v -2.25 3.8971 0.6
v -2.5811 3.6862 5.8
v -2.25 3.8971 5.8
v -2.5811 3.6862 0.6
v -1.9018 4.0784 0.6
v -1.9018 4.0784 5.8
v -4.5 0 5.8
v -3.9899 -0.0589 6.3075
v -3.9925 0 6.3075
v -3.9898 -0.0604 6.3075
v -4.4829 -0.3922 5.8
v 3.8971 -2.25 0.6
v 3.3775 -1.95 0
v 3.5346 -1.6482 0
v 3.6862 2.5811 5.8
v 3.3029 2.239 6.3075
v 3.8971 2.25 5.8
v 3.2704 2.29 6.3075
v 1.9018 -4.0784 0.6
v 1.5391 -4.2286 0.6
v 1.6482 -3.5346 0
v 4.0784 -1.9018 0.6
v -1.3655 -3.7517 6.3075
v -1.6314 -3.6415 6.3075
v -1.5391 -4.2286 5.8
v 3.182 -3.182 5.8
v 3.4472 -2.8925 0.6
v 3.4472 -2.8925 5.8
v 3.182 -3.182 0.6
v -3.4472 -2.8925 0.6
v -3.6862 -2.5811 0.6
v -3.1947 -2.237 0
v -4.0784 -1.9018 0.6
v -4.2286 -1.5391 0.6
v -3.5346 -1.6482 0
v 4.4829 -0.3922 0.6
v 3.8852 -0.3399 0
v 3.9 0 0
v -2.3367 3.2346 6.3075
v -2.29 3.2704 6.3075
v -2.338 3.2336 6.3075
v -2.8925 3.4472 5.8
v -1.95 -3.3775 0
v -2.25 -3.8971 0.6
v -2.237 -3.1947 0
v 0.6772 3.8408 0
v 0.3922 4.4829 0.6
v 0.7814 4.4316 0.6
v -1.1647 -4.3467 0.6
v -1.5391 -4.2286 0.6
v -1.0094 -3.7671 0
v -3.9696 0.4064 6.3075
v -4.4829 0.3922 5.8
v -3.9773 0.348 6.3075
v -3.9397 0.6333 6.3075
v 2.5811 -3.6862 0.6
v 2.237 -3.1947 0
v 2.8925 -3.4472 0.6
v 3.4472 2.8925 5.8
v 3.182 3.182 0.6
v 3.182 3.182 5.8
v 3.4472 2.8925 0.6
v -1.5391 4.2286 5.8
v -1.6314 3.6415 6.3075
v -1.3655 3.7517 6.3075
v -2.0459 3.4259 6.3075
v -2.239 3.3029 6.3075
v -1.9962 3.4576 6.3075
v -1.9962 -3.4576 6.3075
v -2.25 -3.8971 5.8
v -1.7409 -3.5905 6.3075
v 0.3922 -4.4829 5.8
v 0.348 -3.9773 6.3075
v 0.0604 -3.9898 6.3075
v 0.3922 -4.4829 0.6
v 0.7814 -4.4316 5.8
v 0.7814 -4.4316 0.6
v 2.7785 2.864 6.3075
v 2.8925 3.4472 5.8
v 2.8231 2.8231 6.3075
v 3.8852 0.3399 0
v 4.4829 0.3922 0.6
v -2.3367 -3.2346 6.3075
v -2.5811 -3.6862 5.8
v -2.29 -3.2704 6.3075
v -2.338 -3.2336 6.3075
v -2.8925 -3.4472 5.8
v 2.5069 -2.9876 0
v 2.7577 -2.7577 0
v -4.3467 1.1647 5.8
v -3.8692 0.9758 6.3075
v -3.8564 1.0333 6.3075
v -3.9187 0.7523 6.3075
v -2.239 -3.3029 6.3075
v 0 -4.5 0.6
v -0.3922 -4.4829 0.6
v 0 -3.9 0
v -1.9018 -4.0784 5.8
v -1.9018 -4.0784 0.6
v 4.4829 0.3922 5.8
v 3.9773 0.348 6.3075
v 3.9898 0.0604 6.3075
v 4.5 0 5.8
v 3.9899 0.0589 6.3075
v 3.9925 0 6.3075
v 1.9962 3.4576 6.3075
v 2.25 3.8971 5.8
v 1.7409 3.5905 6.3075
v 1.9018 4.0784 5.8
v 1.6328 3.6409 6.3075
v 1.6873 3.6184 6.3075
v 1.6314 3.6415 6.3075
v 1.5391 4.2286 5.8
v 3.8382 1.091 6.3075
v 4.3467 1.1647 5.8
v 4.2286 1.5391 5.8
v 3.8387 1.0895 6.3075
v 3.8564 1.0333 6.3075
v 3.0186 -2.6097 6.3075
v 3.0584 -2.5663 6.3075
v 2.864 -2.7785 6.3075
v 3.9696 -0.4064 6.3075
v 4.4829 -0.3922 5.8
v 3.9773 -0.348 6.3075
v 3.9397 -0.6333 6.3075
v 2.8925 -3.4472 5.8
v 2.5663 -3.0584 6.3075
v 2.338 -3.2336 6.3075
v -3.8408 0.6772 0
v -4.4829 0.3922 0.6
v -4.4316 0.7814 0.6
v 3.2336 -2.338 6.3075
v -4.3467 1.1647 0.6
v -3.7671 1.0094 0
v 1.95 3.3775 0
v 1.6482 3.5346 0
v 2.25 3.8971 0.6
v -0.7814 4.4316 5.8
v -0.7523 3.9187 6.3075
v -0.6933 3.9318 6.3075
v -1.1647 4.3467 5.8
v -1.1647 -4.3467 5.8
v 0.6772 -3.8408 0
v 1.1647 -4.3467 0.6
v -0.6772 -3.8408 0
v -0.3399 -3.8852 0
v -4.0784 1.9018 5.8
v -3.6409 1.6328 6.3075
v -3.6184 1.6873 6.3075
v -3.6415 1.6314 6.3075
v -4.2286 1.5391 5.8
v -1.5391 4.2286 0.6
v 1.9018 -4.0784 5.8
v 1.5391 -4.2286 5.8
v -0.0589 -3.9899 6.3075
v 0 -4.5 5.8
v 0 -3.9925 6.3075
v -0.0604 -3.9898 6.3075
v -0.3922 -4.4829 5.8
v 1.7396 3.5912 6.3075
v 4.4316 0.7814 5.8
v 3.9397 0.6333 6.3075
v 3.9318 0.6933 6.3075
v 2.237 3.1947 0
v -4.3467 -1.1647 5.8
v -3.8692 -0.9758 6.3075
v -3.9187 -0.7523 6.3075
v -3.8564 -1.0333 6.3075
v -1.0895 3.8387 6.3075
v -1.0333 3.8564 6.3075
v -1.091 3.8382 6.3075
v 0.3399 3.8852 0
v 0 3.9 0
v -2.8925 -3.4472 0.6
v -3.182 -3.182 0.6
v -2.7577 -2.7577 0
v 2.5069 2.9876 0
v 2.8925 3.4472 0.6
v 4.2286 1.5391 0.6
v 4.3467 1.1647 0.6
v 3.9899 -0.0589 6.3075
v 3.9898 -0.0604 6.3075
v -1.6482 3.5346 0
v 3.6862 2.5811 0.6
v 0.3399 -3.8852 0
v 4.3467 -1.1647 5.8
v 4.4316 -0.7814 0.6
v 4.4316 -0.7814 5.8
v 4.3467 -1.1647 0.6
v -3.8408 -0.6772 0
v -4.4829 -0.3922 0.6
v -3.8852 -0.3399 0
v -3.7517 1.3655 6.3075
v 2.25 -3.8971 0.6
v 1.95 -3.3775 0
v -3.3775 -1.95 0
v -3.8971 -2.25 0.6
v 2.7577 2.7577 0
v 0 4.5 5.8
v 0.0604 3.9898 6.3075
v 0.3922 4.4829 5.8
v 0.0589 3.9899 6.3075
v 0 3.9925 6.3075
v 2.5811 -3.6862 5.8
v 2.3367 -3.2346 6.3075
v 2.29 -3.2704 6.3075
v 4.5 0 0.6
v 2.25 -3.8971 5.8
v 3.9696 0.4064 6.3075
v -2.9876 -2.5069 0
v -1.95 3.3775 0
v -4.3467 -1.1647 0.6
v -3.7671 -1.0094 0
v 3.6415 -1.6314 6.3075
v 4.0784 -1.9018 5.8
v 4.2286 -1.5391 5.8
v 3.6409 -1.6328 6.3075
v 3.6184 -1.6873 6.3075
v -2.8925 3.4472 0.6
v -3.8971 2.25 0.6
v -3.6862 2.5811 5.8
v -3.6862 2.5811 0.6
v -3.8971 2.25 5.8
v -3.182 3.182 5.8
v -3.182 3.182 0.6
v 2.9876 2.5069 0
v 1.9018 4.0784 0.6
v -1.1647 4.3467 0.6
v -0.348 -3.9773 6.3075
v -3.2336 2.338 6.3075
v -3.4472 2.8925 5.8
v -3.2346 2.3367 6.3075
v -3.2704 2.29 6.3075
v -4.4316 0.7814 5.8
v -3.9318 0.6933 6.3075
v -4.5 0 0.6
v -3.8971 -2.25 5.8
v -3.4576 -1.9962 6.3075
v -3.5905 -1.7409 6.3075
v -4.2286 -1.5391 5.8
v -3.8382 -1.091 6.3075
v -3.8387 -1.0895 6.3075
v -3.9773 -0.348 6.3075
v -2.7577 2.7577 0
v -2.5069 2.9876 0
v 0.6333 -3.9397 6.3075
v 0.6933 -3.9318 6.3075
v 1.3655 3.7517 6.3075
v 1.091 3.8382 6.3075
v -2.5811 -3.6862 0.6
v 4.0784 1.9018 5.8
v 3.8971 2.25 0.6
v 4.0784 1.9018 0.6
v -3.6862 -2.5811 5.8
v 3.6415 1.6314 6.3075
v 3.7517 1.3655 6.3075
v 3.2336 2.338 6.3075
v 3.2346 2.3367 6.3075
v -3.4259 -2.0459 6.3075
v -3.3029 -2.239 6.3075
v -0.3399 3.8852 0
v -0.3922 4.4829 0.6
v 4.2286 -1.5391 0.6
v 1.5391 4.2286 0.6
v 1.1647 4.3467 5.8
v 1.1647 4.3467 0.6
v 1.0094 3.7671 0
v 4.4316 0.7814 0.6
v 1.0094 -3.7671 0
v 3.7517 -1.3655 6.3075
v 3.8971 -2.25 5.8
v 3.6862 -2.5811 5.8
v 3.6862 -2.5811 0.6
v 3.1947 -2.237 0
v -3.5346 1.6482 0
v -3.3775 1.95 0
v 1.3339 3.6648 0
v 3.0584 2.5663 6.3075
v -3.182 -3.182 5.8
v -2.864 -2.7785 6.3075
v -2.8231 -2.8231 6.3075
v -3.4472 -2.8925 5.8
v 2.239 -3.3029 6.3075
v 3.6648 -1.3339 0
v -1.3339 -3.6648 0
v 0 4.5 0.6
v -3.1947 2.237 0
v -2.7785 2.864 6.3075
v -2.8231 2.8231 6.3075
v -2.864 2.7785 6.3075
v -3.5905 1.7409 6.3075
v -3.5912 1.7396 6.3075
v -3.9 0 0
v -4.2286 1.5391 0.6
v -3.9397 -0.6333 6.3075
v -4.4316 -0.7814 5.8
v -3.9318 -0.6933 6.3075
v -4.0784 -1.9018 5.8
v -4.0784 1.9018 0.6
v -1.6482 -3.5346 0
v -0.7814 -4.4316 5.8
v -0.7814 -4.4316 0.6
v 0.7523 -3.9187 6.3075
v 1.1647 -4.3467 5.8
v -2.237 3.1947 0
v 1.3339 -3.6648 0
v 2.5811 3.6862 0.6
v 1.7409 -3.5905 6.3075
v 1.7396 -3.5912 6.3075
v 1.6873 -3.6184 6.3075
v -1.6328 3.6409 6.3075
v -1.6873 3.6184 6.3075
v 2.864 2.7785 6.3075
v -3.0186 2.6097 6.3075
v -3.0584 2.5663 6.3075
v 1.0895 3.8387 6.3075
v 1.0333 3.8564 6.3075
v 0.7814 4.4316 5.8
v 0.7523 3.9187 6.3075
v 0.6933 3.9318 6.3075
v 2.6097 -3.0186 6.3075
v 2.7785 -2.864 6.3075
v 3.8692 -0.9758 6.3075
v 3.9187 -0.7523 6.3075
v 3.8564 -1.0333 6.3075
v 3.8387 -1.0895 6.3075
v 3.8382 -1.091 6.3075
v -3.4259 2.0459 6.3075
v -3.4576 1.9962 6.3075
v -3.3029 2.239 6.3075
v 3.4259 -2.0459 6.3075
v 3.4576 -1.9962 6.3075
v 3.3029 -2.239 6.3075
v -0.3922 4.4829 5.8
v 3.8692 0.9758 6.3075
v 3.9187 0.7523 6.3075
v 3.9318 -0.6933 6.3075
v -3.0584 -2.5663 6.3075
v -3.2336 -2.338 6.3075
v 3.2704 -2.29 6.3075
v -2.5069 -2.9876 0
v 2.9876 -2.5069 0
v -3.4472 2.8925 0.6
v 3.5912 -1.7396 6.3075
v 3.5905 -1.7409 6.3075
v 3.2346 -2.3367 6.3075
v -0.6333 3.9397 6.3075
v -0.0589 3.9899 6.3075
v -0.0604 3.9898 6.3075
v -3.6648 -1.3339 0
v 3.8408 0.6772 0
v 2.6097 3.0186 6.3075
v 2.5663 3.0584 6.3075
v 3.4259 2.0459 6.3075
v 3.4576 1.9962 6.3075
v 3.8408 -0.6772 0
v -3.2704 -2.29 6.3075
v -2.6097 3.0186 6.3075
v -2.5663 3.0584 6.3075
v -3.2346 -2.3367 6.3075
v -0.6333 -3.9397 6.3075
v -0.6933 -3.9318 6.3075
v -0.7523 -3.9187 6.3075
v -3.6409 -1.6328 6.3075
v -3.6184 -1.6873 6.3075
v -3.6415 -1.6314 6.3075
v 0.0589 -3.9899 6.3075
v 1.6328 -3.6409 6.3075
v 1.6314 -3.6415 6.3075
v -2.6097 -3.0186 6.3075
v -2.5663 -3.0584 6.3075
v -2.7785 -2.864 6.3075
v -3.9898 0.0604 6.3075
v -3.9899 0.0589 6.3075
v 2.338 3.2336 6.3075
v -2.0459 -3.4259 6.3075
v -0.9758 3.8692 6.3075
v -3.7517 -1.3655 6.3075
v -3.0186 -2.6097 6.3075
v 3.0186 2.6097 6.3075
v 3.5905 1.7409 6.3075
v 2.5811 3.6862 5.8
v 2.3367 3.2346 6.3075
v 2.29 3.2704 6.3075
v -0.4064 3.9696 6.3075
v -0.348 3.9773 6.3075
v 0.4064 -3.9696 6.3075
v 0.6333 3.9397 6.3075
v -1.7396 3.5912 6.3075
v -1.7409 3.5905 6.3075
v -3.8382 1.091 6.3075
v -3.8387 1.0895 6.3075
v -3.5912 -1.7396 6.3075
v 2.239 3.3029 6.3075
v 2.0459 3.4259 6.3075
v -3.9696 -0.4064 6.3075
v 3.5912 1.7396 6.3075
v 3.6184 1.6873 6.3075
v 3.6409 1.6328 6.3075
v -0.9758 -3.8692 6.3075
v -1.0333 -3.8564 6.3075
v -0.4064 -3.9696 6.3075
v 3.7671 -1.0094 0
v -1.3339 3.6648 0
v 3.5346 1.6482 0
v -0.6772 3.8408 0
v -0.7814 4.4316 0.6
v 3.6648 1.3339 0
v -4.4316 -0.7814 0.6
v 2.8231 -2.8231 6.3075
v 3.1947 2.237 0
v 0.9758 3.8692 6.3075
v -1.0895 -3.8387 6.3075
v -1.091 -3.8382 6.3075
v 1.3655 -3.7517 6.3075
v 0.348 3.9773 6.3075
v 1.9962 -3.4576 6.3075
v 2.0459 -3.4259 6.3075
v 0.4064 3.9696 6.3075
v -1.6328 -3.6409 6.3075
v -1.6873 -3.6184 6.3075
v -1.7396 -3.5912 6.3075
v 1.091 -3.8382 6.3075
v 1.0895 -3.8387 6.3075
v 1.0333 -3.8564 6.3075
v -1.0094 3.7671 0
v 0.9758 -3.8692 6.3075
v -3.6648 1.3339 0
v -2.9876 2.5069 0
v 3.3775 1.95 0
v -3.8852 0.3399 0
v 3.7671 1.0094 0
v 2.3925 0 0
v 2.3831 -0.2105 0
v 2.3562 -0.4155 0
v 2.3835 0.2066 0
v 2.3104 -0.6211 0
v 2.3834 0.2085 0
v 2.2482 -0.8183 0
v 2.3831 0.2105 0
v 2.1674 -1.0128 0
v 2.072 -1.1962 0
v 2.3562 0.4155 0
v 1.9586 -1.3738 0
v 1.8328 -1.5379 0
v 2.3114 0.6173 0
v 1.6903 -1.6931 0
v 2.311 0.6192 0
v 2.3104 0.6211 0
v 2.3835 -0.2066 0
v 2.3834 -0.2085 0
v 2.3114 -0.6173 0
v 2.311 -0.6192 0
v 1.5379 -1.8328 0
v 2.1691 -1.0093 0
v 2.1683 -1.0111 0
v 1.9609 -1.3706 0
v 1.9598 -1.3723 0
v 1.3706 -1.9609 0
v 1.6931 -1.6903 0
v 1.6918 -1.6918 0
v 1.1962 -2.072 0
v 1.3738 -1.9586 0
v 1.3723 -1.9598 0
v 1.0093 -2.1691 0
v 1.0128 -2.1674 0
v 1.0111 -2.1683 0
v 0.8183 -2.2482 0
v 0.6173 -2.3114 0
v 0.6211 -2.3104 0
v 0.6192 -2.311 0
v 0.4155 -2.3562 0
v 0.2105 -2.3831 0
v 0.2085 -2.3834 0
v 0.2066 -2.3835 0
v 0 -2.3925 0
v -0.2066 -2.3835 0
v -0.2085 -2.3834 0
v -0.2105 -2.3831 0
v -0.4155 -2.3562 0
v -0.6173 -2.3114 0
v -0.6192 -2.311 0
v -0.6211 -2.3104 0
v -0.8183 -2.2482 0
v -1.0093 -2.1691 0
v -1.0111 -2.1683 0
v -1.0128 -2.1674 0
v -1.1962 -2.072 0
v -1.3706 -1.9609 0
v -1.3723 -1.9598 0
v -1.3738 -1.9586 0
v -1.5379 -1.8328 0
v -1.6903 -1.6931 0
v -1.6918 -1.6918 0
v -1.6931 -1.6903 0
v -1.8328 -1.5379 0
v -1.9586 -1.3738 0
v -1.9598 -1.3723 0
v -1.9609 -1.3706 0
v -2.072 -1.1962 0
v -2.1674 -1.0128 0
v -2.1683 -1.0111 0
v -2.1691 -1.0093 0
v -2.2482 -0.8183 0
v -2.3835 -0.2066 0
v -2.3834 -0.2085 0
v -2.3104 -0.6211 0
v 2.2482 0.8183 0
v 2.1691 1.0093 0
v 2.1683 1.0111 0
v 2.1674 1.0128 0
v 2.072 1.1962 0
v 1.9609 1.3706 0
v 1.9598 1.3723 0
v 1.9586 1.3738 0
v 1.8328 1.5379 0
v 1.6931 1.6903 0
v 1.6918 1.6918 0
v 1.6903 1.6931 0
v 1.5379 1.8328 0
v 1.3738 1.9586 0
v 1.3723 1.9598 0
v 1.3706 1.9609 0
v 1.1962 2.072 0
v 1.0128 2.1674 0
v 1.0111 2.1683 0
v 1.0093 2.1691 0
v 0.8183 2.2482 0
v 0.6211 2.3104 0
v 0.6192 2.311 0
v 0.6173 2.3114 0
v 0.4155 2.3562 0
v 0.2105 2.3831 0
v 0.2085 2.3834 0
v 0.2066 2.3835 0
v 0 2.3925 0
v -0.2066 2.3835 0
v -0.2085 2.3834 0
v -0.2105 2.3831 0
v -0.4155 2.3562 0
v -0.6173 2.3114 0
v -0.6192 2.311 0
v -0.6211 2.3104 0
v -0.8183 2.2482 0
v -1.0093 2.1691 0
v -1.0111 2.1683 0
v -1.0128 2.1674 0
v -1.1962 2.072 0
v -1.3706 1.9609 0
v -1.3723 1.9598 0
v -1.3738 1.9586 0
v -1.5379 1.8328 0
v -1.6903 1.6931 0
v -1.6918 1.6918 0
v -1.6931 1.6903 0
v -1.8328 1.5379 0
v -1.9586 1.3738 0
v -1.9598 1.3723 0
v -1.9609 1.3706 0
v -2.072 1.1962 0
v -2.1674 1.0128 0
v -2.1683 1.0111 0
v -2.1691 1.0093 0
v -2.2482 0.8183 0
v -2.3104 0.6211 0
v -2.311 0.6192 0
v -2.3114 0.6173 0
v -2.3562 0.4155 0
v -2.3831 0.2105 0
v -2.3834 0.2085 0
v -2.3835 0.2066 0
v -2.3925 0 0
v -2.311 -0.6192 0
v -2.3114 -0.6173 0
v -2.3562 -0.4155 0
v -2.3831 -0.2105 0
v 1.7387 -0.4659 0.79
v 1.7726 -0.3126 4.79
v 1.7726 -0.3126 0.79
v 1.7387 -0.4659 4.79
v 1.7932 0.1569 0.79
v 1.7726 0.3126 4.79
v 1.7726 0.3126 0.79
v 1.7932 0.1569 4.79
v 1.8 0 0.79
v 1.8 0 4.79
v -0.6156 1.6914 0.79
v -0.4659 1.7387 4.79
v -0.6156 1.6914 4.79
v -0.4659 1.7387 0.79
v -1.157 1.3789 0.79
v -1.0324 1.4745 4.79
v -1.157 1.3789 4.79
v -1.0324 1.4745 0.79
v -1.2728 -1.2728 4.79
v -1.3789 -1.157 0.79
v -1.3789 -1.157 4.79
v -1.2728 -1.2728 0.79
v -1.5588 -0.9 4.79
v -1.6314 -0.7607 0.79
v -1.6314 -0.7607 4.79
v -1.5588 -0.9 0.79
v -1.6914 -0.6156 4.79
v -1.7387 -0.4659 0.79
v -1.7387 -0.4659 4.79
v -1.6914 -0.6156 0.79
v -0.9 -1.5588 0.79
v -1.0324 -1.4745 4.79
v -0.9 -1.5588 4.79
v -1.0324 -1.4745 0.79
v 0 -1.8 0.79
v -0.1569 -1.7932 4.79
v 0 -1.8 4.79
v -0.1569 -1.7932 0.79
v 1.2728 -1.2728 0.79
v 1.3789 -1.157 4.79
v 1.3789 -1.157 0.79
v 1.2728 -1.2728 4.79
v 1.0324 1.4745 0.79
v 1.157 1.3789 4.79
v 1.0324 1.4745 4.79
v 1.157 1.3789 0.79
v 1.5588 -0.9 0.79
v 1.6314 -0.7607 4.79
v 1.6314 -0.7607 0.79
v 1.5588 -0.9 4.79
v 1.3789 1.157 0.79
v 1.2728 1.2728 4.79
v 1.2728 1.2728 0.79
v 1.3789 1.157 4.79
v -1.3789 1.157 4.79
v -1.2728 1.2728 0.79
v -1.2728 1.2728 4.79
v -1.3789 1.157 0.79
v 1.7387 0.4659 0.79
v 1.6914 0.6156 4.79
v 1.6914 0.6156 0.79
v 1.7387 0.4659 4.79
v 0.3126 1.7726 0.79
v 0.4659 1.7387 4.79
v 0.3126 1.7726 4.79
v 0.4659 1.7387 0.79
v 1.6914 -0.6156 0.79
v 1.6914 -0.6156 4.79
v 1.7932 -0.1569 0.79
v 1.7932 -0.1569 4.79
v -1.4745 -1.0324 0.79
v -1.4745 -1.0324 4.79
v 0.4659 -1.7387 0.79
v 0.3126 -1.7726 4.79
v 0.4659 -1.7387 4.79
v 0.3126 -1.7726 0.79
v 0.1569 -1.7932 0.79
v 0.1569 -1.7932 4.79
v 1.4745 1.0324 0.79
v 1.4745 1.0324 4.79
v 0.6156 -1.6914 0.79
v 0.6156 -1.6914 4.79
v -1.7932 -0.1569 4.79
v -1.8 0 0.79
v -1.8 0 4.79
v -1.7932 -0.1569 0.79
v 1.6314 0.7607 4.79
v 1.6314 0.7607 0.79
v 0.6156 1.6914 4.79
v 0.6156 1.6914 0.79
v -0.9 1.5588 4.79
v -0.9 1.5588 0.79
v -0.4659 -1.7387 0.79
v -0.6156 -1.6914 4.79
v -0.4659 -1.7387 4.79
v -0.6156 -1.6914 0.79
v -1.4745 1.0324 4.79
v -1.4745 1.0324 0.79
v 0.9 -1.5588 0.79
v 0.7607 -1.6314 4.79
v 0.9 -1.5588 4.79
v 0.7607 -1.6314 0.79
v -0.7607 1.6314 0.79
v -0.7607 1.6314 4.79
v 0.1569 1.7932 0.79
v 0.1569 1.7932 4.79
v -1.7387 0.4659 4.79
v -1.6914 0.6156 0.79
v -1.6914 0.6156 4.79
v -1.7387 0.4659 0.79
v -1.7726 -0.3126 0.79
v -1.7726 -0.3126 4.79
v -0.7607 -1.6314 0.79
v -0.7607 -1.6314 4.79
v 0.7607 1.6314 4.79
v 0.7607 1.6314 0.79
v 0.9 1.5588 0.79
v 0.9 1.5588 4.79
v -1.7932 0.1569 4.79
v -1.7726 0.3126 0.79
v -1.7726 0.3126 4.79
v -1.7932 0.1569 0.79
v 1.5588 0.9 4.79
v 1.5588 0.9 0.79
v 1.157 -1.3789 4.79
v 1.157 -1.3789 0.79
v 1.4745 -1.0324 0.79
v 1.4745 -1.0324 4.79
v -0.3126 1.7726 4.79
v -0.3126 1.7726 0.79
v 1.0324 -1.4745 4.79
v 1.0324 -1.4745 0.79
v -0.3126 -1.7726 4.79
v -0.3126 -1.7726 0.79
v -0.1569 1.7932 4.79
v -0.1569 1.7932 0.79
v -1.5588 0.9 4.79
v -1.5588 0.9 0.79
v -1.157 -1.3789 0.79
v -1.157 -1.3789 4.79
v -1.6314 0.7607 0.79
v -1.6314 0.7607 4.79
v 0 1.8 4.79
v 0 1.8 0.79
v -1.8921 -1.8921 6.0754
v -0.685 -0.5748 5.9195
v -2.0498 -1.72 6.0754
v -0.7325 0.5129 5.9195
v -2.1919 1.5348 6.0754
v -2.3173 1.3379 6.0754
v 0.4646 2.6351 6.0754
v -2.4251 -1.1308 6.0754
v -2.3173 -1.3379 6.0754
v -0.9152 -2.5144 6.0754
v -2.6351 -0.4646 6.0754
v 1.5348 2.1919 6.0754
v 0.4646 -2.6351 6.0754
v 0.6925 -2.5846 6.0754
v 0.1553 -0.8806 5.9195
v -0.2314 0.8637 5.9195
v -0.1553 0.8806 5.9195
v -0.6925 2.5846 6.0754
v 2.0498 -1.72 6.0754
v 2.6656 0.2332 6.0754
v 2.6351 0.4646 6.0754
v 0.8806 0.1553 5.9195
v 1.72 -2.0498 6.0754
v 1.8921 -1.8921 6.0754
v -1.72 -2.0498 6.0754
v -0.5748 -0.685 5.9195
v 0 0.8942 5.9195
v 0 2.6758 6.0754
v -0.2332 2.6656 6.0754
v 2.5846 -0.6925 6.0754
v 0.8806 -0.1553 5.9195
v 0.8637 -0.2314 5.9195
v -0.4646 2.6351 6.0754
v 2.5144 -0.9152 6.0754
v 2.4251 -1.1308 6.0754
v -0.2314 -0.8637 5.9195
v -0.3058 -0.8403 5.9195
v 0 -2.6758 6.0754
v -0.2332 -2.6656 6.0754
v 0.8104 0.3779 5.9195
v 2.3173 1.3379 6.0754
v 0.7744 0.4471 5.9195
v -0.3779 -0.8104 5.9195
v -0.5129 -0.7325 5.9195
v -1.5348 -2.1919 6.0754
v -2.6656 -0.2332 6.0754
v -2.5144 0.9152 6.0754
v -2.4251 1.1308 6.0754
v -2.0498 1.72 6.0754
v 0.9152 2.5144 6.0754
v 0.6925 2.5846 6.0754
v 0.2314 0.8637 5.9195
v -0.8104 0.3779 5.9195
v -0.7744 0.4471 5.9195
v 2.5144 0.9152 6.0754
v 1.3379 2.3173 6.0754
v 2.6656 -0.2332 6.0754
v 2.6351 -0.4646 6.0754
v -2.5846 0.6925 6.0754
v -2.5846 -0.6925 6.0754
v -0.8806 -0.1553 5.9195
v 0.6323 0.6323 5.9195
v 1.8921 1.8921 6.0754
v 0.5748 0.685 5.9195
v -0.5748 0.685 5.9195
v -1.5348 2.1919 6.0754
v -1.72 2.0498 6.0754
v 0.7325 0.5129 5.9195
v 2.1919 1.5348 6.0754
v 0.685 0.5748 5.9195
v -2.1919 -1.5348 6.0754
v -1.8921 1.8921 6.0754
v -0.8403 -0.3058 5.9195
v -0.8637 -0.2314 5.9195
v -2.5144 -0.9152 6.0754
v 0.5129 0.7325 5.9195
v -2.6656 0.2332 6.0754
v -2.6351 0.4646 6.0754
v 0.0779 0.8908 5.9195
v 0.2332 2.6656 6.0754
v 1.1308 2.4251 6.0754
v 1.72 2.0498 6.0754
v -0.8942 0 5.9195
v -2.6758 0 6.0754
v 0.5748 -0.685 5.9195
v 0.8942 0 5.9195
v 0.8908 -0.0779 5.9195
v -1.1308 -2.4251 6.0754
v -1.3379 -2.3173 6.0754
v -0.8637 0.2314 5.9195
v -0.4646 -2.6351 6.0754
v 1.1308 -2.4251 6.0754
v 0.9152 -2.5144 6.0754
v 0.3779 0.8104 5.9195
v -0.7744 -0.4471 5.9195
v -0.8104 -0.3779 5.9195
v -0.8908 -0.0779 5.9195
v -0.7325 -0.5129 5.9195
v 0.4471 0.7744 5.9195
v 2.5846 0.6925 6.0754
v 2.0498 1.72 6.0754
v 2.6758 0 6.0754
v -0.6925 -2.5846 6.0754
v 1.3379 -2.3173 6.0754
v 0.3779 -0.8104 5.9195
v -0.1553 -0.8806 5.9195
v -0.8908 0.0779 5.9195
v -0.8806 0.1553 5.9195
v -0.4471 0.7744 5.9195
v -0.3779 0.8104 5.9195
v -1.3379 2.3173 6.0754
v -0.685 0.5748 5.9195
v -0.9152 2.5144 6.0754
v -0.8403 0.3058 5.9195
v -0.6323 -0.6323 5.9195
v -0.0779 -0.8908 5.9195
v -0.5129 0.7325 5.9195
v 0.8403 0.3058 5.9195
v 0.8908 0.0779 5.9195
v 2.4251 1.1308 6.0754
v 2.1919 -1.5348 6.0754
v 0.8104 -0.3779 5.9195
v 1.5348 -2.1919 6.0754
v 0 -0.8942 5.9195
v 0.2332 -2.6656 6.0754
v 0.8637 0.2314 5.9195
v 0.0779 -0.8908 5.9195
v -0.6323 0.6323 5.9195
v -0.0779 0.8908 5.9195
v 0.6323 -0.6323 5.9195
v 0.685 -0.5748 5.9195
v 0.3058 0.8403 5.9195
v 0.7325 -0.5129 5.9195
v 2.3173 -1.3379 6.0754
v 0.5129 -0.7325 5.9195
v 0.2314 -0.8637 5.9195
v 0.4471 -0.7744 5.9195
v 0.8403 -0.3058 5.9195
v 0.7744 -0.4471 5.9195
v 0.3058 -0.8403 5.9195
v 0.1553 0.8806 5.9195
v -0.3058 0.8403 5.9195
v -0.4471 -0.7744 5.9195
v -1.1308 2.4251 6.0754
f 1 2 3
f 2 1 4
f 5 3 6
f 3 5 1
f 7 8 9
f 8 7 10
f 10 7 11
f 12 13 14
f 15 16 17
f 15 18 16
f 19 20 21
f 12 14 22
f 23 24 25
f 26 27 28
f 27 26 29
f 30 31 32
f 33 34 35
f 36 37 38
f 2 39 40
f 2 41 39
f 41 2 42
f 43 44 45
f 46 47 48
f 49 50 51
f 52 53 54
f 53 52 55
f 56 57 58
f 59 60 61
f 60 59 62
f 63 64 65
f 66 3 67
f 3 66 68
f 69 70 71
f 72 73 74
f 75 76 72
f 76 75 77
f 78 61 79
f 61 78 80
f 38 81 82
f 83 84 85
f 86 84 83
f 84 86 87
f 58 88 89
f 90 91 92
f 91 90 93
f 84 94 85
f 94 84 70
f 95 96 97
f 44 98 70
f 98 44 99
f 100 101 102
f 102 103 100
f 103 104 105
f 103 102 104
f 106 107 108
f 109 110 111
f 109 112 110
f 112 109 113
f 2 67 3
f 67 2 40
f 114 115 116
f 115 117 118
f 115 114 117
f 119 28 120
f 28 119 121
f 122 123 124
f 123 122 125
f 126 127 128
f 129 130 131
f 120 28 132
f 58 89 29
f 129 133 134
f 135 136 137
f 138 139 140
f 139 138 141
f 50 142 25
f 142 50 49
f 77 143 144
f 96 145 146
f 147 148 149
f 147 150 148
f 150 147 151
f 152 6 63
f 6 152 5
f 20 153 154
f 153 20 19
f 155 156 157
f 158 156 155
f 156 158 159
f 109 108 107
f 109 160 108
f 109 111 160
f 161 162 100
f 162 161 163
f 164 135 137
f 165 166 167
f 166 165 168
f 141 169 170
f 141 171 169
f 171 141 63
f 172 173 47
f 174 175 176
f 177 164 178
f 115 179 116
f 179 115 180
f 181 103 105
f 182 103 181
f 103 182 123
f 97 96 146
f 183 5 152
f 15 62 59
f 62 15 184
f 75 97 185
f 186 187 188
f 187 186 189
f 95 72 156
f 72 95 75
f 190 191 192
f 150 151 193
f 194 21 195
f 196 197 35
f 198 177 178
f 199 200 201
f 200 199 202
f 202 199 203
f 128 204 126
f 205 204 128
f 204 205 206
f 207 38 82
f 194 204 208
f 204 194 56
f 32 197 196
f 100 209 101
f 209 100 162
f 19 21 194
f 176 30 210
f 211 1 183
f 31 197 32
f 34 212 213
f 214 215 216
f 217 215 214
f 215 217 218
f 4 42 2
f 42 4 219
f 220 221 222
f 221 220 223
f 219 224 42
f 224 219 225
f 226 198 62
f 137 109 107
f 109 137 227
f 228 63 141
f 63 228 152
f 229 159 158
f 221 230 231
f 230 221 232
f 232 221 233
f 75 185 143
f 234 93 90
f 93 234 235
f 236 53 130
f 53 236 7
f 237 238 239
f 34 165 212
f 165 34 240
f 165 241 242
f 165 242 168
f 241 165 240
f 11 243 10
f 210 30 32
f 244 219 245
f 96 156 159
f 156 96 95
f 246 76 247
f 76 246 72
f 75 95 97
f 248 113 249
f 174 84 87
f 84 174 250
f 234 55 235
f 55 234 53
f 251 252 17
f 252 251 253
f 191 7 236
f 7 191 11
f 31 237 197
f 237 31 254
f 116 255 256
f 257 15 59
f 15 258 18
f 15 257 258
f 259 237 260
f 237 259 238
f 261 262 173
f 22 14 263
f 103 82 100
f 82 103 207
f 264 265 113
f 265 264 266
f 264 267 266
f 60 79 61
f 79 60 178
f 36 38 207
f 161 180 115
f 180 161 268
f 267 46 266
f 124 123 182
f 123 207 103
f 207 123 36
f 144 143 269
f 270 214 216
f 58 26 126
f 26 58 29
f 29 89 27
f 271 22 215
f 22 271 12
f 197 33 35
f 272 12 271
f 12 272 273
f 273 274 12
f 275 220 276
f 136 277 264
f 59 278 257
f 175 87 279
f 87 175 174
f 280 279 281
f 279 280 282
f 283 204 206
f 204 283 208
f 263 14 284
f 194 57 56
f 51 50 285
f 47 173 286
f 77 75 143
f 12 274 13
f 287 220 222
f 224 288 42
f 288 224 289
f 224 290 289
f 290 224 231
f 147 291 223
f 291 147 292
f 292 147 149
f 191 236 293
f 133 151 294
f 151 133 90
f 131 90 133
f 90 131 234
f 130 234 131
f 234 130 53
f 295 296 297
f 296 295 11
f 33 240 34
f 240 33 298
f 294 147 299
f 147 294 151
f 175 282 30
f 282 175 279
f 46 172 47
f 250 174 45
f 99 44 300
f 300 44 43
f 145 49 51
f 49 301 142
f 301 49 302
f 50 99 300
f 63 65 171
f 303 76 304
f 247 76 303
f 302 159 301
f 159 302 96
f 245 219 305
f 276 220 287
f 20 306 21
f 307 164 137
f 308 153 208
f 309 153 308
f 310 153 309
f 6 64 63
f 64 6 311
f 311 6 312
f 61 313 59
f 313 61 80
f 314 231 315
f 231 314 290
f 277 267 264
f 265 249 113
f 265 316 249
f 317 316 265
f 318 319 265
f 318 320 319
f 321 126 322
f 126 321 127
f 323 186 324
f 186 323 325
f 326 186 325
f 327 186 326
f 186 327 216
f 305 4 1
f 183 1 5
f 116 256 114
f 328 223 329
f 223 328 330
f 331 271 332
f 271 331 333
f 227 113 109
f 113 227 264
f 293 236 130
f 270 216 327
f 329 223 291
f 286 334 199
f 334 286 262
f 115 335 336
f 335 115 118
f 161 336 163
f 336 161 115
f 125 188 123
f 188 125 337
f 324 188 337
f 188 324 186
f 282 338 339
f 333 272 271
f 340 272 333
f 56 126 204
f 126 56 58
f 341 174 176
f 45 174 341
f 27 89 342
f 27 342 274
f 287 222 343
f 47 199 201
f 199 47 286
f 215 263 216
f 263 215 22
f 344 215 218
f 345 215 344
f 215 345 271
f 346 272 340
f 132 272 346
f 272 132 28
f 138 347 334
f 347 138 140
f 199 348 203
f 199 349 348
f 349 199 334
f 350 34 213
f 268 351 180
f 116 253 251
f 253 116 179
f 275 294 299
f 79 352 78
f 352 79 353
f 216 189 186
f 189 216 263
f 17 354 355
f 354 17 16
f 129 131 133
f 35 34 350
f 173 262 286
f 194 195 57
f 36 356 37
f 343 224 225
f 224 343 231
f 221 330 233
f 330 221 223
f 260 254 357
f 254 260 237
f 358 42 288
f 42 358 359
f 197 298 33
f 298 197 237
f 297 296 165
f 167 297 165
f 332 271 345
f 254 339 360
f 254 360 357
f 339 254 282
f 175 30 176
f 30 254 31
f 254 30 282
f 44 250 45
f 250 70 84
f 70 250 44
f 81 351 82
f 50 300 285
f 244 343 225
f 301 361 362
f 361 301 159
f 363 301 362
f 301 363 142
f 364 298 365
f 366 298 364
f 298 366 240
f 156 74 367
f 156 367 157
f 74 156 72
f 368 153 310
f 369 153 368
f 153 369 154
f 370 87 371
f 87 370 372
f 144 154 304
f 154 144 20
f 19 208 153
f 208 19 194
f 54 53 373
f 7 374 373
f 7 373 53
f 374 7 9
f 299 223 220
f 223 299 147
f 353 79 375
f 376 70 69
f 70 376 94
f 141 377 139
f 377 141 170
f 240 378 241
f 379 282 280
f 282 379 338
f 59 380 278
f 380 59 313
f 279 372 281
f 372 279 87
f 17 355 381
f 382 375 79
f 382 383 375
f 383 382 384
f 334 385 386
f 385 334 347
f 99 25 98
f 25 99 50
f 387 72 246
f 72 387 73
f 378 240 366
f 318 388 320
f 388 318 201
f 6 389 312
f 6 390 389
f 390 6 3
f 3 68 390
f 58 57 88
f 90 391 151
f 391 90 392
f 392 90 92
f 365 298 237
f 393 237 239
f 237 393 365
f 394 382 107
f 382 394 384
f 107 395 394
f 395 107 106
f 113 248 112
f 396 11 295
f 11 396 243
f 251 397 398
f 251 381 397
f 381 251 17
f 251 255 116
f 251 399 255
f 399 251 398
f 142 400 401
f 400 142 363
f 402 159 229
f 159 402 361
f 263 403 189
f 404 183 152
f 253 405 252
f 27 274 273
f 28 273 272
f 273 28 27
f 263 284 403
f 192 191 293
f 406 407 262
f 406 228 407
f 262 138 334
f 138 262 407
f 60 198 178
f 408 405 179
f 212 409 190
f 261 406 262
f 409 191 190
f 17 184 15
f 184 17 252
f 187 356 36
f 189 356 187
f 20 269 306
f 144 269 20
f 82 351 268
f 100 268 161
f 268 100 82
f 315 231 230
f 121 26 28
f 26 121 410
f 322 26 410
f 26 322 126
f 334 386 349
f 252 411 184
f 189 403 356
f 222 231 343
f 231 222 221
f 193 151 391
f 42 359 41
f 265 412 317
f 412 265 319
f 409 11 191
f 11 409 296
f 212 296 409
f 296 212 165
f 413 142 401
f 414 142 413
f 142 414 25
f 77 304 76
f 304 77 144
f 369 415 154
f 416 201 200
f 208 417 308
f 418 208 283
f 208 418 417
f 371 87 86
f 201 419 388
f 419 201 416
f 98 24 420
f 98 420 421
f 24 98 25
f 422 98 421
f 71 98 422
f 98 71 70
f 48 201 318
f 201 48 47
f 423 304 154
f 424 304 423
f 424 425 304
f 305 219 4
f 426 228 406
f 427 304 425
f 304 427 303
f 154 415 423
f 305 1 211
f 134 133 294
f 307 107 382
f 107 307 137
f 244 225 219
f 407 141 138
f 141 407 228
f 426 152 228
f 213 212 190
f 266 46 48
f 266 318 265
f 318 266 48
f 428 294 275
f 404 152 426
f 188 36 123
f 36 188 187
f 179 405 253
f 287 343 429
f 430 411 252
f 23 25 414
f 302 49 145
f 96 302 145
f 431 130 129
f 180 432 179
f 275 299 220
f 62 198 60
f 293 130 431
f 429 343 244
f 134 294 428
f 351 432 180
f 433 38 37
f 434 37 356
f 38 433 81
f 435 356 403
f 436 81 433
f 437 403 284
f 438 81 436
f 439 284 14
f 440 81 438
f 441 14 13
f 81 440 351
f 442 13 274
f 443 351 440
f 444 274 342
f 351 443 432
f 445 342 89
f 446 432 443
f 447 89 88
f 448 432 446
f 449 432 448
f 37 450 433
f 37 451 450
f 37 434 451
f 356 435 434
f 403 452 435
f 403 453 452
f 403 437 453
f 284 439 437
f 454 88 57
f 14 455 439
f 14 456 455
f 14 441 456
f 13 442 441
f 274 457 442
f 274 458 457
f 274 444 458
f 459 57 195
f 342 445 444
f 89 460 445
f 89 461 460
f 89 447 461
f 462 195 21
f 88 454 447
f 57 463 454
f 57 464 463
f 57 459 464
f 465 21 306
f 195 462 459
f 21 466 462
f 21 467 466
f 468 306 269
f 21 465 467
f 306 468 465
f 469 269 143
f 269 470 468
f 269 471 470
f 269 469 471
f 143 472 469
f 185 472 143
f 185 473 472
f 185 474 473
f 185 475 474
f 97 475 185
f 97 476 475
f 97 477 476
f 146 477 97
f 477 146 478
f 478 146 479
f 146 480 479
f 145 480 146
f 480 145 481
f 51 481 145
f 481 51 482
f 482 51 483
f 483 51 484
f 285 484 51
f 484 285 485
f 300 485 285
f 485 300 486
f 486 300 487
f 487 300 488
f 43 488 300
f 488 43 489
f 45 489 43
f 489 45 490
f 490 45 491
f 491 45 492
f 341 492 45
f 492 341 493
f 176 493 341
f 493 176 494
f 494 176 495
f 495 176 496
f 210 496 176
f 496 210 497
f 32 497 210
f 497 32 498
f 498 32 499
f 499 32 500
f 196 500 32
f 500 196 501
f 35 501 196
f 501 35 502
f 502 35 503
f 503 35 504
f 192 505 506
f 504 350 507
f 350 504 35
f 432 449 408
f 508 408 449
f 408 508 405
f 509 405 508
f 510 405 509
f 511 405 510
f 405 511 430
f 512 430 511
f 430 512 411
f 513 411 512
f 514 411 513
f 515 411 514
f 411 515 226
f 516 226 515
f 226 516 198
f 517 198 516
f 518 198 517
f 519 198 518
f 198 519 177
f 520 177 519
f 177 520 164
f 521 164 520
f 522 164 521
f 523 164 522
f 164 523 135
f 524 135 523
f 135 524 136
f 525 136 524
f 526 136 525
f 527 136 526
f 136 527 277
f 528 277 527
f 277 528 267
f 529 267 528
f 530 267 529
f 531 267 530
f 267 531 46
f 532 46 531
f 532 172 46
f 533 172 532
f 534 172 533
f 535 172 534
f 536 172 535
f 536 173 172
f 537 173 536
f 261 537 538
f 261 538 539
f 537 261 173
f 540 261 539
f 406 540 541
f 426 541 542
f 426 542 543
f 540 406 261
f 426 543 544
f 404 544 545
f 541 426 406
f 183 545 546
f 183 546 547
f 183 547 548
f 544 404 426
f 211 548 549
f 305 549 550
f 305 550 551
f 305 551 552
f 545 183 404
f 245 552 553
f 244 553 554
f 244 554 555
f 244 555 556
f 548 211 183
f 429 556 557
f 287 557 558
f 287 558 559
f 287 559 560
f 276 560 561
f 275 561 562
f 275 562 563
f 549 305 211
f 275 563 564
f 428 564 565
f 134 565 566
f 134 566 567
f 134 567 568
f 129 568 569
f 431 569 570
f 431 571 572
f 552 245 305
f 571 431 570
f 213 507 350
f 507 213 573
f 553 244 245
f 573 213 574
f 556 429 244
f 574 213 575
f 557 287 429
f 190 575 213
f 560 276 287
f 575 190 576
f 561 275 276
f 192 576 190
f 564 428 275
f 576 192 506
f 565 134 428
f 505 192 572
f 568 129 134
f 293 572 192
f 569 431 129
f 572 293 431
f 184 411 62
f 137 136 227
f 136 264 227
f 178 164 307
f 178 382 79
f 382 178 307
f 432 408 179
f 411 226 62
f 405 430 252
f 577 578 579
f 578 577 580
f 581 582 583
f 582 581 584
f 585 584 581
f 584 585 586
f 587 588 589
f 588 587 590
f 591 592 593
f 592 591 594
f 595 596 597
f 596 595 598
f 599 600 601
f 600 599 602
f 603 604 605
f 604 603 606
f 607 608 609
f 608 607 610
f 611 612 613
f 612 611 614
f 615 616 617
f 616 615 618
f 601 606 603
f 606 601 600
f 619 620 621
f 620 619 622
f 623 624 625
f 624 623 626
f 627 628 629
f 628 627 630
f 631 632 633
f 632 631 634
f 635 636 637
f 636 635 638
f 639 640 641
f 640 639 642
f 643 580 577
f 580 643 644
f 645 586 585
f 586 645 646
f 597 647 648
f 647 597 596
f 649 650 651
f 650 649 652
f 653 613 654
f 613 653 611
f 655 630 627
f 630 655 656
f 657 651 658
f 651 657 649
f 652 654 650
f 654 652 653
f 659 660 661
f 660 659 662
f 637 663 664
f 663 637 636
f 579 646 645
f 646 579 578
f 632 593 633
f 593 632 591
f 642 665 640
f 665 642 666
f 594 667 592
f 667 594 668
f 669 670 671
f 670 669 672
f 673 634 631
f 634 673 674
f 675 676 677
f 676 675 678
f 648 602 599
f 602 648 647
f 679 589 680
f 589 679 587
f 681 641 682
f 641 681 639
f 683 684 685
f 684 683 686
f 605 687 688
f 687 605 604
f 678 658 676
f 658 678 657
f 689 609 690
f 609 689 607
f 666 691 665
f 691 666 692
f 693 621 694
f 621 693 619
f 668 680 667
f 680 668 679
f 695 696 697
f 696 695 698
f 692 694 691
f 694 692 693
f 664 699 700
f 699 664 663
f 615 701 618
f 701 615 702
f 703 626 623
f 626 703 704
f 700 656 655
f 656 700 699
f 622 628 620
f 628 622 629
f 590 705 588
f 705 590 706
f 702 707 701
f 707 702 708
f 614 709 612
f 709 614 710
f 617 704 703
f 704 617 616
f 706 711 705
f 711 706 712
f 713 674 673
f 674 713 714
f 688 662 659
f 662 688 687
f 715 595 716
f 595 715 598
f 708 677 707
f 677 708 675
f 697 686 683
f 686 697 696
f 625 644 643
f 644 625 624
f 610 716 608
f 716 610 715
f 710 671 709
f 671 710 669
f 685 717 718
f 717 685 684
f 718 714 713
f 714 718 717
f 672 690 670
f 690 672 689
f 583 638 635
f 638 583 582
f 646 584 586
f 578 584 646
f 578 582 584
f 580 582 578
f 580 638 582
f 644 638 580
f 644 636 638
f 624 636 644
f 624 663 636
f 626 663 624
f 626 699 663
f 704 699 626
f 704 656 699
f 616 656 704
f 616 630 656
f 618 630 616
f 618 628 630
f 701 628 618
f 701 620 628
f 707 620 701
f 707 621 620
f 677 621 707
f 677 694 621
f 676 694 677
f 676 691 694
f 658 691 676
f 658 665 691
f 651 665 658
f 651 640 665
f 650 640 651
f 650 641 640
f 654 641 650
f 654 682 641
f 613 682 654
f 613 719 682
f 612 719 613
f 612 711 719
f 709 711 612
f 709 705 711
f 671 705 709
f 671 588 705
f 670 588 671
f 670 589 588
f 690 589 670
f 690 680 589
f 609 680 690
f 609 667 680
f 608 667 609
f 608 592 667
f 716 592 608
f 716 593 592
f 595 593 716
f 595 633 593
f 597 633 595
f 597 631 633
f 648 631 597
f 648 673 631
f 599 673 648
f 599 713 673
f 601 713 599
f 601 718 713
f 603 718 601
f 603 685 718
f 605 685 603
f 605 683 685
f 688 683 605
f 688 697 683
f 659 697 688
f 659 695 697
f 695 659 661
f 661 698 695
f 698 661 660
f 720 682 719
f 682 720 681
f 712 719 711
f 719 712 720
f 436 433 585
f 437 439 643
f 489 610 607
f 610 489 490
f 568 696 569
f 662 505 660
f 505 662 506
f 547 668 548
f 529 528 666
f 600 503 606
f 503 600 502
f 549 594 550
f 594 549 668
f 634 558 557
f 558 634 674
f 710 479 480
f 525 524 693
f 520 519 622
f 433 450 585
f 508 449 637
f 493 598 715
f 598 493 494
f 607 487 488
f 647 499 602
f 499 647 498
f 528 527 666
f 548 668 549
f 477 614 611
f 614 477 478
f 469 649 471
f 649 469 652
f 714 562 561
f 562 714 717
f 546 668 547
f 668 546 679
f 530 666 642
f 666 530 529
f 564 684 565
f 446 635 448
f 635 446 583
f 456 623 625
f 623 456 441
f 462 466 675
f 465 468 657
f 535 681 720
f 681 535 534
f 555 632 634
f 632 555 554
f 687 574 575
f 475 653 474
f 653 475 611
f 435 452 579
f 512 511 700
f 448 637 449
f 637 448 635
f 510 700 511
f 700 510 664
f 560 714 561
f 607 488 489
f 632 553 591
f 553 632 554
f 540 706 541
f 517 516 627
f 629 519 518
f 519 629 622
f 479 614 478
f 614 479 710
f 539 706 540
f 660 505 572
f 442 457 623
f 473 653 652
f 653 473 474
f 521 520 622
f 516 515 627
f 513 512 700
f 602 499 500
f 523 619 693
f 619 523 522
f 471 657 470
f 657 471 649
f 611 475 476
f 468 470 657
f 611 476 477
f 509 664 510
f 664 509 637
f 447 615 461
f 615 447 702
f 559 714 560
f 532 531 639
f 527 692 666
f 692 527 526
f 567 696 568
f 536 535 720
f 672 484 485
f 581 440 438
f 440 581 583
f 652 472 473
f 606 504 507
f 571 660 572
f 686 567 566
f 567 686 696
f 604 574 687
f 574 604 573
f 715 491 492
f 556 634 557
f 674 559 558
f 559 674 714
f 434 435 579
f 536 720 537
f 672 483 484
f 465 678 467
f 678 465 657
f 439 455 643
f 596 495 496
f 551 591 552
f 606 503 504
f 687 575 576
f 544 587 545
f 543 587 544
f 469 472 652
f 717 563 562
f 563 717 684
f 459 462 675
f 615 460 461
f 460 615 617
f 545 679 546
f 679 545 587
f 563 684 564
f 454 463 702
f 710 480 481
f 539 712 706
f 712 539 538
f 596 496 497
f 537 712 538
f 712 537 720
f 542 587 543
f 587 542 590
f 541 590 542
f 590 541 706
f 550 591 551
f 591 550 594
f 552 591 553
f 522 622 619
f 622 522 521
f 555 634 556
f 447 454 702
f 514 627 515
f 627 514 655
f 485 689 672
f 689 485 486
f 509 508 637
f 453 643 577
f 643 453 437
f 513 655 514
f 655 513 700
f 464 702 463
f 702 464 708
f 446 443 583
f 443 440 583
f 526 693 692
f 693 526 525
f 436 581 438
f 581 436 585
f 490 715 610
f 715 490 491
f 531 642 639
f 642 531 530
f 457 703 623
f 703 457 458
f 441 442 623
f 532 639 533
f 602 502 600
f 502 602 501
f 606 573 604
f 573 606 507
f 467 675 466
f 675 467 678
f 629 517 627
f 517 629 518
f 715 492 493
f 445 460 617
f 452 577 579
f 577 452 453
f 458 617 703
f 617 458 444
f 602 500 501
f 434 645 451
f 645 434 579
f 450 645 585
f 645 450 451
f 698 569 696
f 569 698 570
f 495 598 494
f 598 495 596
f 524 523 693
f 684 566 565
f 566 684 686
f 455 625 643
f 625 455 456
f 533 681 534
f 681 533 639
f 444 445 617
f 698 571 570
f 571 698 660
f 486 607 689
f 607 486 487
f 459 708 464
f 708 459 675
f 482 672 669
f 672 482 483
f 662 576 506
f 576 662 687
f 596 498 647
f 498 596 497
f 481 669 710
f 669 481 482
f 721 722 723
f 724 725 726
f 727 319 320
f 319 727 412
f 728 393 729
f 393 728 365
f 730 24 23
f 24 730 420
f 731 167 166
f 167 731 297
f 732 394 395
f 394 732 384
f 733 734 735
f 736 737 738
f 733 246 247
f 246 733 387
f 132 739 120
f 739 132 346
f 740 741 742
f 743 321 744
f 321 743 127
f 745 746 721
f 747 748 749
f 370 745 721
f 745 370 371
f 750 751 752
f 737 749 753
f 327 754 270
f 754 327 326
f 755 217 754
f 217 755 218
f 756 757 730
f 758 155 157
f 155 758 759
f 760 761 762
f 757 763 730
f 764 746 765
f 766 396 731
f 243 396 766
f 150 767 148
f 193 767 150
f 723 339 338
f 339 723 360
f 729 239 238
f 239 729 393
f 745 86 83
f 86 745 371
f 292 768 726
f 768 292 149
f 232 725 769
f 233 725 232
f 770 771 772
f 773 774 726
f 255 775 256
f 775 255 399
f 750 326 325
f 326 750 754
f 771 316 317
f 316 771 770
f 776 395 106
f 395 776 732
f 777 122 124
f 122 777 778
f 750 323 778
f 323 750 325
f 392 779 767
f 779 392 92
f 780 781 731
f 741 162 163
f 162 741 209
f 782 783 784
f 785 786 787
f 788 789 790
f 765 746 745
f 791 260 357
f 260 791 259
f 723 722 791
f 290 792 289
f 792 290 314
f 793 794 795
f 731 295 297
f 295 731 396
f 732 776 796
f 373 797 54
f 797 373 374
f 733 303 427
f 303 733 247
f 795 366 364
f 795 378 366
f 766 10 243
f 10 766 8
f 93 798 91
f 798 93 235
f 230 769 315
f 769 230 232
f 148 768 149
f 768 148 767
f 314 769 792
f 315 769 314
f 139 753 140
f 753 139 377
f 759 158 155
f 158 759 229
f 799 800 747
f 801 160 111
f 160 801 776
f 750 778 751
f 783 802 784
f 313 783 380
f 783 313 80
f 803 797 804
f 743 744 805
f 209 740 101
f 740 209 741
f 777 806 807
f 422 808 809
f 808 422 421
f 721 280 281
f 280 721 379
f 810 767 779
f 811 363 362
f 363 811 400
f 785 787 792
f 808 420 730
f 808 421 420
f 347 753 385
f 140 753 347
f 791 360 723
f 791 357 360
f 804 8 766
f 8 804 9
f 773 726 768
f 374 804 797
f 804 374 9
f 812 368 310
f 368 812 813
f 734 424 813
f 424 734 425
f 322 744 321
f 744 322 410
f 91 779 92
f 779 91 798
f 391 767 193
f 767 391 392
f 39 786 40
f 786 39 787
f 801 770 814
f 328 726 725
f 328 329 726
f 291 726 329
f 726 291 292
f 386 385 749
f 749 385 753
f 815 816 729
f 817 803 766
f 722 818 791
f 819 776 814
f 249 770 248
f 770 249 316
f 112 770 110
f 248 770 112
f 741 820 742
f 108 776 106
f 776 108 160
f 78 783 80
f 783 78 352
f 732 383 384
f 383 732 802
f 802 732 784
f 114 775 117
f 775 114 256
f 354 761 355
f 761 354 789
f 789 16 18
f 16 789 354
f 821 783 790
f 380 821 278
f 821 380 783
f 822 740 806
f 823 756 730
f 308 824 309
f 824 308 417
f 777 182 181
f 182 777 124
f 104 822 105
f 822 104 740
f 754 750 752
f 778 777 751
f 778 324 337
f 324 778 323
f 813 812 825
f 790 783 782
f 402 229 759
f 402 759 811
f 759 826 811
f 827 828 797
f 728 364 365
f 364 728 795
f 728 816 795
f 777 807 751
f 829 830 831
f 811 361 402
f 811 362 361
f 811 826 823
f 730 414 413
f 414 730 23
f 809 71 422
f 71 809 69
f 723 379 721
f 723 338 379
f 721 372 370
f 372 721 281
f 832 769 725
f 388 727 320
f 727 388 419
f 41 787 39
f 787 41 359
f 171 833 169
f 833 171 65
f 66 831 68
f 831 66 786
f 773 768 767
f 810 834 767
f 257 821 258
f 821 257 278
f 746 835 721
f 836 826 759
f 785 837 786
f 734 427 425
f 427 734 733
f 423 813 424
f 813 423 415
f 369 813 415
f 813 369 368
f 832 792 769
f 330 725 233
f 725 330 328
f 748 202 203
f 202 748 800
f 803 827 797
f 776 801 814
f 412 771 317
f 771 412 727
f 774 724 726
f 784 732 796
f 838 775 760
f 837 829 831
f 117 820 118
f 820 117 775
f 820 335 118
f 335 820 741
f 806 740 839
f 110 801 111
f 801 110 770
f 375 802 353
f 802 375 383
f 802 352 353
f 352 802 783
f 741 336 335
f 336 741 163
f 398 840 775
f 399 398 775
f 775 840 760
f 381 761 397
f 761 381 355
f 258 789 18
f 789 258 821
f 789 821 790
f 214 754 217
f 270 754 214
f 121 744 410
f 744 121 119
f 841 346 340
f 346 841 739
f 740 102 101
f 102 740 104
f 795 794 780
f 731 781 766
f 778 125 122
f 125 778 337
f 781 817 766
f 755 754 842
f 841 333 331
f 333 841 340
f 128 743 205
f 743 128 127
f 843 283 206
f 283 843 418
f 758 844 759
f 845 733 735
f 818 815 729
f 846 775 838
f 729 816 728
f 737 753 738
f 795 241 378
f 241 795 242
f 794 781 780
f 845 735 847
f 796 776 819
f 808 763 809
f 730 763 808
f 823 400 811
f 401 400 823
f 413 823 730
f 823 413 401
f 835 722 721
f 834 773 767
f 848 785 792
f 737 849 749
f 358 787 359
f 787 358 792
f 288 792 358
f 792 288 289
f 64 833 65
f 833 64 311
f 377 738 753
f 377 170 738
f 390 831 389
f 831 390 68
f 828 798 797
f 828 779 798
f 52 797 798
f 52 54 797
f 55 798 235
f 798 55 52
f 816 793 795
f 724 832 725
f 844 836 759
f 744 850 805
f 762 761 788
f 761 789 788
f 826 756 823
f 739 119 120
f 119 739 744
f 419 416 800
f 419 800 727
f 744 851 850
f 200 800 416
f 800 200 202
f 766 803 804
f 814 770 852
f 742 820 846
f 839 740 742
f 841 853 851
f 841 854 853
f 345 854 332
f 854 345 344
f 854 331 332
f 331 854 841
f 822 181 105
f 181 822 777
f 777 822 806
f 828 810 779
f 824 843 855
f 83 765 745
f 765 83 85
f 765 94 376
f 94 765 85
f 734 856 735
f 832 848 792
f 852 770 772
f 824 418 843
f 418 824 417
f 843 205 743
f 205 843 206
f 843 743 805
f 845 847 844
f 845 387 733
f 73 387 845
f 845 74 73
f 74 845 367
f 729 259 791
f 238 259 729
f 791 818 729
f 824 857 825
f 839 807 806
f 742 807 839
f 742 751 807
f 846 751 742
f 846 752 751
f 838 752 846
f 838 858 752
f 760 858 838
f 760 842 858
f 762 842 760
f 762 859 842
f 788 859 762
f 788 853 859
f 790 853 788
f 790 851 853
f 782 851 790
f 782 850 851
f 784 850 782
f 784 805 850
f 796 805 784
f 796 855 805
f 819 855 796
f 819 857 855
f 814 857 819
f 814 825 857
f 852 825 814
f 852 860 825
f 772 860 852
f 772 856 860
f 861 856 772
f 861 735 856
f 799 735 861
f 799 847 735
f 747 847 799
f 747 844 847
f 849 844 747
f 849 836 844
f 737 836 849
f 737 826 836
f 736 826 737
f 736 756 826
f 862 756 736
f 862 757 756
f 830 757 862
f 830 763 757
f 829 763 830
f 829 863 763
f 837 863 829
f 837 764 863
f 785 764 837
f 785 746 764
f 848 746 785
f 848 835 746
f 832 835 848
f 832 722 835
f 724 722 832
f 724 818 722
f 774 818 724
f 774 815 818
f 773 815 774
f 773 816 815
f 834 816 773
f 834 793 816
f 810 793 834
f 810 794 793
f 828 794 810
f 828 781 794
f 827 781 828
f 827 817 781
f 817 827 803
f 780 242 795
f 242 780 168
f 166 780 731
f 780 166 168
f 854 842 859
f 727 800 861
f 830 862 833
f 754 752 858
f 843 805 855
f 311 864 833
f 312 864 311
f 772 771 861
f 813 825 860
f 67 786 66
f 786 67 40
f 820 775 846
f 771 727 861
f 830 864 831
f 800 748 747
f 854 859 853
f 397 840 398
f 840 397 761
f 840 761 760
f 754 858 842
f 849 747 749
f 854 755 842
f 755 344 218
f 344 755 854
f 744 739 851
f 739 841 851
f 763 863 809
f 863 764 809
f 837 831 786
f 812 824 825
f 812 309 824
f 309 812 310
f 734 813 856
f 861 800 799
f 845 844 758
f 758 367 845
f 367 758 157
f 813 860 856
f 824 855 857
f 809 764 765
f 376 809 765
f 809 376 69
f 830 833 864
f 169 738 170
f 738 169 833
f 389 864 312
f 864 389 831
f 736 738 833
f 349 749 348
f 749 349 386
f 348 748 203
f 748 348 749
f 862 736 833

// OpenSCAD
// mega blastoise - button cap for a 6x6 tactile switch
// GENERATED by layout.py; edit the geometry there and re-run, not here.
//
//   openscad -o cap.stl button_cap.scad
//   openscad -o gauge.stl -D 'part="gauge"' button_cap.scad
//
// Print the GAUGE first. It carries five bores either side of the nominal
// size; whichever grips the plunger without splitting is the number to put in
// plunger_d before printing sixteen caps.

part        = "cap";     // "cap" | "gauge" | "row"

cap_d       = 9.0;      // a ceiling, not a preference: see below
plunger_d   = 3.5;      // round post on the switch. MEASURE YOURS.
plunger_h   = 5.2;      // how far it stands above the switch body
bore_clear  = 0.1;      // printed holes come out under size
top_t       = 1.6;      // roof over the bore
dish        = 0.5;      // hollow in the top face, for a fingertip
chamfer     = 0.6;
$fn         = 72;

bore_d = plunger_d + bore_clear;
bore_h = plunger_h - 0.4;          // stop short so the cap seats on the post
cap_h  = bore_h + top_t;
wall   = (cap_d - bore_d) / 2;

module cap() {
    difference() {
        // body, chamfered top and bottom so it prints and handles cleanly
        hull() {
            translate([0, 0, chamfer])
                cylinder(h = cap_h - 2 * chamfer, d = cap_d);
            cylinder(h = cap_h - chamfer, d = cap_d - 2 * chamfer);
            translate([0, 0, chamfer]) cylinder(h = cap_h - chamfer, d = cap_d - 2 * chamfer);
        }
        // the bore, mouth chamfered so it finds the post
        translate([0, 0, -0.01]) cylinder(h = bore_h, d = bore_d);
        translate([0, 0, -0.01])
            cylinder(h = 0.8, d1 = bore_d + 1.2, d2 = bore_d);
        // fingertip dish
        if (dish > 0)
            translate([0, 0, cap_h + (cap_d * cap_d / 4 + dish * dish) / (2 * dish) - dish])
                sphere(r = (cap_d * cap_d / 4 + dish * dish) / (2 * dish));
    }
}

// Five bores around the nominal, so one test print settles the fit.
module gauge() {
    steps = [-0.2, -0.1, 0, 0.1, 0.2];
    for (i = [0:len(steps) - 1])
        translate([i * (cap_d + 2), 0, 0])
            difference() {
                cylinder(h = 4, d = cap_d);
                translate([0, 0, -0.01])
                    cylinder(h = 4.02, d = bore_d + steps[i]);
                translate([0, -cap_d / 2 - 0.4, 3.4])
                    linear_extrude(0.7)
                        text(str(steps[i]), size = 1.8, halign = "center",
                             font = "monospace");
            }
}

if (part == "cap")        cap();
else if (part == "gauge") gauge();
else if (part == "row")   for (i = [0:3]) translate([i * (cap_d + 2), 0, 0]) cap();

// ------------------------------------------------------------ self-checking

echo(str("cap: ", cap_d, " mm across, ", cap_h, " mm tall, wall ", wall, " mm"));
echo(str("bore ", bore_d, " mm x ", bore_h, " mm deep, for a ", plunger_d,
         " mm post standing ", plunger_h, " mm proud"));
echo(str("cap top ends up ", 4.3 + plunger_h + top_t,
         " mm above the board"));
echo(str("gap to the next cap ", 10.16 - cap_d,
         " mm, to the display ", 0.56 + (9.0 - cap_d) / 2, " mm"));

assert(cap_d <= 9.0 + 0.001,
       "wider than 9.0 mm and the caps foul each other at the cross pitch");
assert(cap_d < 10.16, "caps would overlap their neighbours");
assert(wall >= 1.0, "wall too thin to survive a thumb");
assert(bore_h > 2.5, "not enough bore to hold the cap on");
assert(bore_h + top_t > bore_h, "no roof on the bore");
assert(dish < top_t, "the dish would break through the roof");
